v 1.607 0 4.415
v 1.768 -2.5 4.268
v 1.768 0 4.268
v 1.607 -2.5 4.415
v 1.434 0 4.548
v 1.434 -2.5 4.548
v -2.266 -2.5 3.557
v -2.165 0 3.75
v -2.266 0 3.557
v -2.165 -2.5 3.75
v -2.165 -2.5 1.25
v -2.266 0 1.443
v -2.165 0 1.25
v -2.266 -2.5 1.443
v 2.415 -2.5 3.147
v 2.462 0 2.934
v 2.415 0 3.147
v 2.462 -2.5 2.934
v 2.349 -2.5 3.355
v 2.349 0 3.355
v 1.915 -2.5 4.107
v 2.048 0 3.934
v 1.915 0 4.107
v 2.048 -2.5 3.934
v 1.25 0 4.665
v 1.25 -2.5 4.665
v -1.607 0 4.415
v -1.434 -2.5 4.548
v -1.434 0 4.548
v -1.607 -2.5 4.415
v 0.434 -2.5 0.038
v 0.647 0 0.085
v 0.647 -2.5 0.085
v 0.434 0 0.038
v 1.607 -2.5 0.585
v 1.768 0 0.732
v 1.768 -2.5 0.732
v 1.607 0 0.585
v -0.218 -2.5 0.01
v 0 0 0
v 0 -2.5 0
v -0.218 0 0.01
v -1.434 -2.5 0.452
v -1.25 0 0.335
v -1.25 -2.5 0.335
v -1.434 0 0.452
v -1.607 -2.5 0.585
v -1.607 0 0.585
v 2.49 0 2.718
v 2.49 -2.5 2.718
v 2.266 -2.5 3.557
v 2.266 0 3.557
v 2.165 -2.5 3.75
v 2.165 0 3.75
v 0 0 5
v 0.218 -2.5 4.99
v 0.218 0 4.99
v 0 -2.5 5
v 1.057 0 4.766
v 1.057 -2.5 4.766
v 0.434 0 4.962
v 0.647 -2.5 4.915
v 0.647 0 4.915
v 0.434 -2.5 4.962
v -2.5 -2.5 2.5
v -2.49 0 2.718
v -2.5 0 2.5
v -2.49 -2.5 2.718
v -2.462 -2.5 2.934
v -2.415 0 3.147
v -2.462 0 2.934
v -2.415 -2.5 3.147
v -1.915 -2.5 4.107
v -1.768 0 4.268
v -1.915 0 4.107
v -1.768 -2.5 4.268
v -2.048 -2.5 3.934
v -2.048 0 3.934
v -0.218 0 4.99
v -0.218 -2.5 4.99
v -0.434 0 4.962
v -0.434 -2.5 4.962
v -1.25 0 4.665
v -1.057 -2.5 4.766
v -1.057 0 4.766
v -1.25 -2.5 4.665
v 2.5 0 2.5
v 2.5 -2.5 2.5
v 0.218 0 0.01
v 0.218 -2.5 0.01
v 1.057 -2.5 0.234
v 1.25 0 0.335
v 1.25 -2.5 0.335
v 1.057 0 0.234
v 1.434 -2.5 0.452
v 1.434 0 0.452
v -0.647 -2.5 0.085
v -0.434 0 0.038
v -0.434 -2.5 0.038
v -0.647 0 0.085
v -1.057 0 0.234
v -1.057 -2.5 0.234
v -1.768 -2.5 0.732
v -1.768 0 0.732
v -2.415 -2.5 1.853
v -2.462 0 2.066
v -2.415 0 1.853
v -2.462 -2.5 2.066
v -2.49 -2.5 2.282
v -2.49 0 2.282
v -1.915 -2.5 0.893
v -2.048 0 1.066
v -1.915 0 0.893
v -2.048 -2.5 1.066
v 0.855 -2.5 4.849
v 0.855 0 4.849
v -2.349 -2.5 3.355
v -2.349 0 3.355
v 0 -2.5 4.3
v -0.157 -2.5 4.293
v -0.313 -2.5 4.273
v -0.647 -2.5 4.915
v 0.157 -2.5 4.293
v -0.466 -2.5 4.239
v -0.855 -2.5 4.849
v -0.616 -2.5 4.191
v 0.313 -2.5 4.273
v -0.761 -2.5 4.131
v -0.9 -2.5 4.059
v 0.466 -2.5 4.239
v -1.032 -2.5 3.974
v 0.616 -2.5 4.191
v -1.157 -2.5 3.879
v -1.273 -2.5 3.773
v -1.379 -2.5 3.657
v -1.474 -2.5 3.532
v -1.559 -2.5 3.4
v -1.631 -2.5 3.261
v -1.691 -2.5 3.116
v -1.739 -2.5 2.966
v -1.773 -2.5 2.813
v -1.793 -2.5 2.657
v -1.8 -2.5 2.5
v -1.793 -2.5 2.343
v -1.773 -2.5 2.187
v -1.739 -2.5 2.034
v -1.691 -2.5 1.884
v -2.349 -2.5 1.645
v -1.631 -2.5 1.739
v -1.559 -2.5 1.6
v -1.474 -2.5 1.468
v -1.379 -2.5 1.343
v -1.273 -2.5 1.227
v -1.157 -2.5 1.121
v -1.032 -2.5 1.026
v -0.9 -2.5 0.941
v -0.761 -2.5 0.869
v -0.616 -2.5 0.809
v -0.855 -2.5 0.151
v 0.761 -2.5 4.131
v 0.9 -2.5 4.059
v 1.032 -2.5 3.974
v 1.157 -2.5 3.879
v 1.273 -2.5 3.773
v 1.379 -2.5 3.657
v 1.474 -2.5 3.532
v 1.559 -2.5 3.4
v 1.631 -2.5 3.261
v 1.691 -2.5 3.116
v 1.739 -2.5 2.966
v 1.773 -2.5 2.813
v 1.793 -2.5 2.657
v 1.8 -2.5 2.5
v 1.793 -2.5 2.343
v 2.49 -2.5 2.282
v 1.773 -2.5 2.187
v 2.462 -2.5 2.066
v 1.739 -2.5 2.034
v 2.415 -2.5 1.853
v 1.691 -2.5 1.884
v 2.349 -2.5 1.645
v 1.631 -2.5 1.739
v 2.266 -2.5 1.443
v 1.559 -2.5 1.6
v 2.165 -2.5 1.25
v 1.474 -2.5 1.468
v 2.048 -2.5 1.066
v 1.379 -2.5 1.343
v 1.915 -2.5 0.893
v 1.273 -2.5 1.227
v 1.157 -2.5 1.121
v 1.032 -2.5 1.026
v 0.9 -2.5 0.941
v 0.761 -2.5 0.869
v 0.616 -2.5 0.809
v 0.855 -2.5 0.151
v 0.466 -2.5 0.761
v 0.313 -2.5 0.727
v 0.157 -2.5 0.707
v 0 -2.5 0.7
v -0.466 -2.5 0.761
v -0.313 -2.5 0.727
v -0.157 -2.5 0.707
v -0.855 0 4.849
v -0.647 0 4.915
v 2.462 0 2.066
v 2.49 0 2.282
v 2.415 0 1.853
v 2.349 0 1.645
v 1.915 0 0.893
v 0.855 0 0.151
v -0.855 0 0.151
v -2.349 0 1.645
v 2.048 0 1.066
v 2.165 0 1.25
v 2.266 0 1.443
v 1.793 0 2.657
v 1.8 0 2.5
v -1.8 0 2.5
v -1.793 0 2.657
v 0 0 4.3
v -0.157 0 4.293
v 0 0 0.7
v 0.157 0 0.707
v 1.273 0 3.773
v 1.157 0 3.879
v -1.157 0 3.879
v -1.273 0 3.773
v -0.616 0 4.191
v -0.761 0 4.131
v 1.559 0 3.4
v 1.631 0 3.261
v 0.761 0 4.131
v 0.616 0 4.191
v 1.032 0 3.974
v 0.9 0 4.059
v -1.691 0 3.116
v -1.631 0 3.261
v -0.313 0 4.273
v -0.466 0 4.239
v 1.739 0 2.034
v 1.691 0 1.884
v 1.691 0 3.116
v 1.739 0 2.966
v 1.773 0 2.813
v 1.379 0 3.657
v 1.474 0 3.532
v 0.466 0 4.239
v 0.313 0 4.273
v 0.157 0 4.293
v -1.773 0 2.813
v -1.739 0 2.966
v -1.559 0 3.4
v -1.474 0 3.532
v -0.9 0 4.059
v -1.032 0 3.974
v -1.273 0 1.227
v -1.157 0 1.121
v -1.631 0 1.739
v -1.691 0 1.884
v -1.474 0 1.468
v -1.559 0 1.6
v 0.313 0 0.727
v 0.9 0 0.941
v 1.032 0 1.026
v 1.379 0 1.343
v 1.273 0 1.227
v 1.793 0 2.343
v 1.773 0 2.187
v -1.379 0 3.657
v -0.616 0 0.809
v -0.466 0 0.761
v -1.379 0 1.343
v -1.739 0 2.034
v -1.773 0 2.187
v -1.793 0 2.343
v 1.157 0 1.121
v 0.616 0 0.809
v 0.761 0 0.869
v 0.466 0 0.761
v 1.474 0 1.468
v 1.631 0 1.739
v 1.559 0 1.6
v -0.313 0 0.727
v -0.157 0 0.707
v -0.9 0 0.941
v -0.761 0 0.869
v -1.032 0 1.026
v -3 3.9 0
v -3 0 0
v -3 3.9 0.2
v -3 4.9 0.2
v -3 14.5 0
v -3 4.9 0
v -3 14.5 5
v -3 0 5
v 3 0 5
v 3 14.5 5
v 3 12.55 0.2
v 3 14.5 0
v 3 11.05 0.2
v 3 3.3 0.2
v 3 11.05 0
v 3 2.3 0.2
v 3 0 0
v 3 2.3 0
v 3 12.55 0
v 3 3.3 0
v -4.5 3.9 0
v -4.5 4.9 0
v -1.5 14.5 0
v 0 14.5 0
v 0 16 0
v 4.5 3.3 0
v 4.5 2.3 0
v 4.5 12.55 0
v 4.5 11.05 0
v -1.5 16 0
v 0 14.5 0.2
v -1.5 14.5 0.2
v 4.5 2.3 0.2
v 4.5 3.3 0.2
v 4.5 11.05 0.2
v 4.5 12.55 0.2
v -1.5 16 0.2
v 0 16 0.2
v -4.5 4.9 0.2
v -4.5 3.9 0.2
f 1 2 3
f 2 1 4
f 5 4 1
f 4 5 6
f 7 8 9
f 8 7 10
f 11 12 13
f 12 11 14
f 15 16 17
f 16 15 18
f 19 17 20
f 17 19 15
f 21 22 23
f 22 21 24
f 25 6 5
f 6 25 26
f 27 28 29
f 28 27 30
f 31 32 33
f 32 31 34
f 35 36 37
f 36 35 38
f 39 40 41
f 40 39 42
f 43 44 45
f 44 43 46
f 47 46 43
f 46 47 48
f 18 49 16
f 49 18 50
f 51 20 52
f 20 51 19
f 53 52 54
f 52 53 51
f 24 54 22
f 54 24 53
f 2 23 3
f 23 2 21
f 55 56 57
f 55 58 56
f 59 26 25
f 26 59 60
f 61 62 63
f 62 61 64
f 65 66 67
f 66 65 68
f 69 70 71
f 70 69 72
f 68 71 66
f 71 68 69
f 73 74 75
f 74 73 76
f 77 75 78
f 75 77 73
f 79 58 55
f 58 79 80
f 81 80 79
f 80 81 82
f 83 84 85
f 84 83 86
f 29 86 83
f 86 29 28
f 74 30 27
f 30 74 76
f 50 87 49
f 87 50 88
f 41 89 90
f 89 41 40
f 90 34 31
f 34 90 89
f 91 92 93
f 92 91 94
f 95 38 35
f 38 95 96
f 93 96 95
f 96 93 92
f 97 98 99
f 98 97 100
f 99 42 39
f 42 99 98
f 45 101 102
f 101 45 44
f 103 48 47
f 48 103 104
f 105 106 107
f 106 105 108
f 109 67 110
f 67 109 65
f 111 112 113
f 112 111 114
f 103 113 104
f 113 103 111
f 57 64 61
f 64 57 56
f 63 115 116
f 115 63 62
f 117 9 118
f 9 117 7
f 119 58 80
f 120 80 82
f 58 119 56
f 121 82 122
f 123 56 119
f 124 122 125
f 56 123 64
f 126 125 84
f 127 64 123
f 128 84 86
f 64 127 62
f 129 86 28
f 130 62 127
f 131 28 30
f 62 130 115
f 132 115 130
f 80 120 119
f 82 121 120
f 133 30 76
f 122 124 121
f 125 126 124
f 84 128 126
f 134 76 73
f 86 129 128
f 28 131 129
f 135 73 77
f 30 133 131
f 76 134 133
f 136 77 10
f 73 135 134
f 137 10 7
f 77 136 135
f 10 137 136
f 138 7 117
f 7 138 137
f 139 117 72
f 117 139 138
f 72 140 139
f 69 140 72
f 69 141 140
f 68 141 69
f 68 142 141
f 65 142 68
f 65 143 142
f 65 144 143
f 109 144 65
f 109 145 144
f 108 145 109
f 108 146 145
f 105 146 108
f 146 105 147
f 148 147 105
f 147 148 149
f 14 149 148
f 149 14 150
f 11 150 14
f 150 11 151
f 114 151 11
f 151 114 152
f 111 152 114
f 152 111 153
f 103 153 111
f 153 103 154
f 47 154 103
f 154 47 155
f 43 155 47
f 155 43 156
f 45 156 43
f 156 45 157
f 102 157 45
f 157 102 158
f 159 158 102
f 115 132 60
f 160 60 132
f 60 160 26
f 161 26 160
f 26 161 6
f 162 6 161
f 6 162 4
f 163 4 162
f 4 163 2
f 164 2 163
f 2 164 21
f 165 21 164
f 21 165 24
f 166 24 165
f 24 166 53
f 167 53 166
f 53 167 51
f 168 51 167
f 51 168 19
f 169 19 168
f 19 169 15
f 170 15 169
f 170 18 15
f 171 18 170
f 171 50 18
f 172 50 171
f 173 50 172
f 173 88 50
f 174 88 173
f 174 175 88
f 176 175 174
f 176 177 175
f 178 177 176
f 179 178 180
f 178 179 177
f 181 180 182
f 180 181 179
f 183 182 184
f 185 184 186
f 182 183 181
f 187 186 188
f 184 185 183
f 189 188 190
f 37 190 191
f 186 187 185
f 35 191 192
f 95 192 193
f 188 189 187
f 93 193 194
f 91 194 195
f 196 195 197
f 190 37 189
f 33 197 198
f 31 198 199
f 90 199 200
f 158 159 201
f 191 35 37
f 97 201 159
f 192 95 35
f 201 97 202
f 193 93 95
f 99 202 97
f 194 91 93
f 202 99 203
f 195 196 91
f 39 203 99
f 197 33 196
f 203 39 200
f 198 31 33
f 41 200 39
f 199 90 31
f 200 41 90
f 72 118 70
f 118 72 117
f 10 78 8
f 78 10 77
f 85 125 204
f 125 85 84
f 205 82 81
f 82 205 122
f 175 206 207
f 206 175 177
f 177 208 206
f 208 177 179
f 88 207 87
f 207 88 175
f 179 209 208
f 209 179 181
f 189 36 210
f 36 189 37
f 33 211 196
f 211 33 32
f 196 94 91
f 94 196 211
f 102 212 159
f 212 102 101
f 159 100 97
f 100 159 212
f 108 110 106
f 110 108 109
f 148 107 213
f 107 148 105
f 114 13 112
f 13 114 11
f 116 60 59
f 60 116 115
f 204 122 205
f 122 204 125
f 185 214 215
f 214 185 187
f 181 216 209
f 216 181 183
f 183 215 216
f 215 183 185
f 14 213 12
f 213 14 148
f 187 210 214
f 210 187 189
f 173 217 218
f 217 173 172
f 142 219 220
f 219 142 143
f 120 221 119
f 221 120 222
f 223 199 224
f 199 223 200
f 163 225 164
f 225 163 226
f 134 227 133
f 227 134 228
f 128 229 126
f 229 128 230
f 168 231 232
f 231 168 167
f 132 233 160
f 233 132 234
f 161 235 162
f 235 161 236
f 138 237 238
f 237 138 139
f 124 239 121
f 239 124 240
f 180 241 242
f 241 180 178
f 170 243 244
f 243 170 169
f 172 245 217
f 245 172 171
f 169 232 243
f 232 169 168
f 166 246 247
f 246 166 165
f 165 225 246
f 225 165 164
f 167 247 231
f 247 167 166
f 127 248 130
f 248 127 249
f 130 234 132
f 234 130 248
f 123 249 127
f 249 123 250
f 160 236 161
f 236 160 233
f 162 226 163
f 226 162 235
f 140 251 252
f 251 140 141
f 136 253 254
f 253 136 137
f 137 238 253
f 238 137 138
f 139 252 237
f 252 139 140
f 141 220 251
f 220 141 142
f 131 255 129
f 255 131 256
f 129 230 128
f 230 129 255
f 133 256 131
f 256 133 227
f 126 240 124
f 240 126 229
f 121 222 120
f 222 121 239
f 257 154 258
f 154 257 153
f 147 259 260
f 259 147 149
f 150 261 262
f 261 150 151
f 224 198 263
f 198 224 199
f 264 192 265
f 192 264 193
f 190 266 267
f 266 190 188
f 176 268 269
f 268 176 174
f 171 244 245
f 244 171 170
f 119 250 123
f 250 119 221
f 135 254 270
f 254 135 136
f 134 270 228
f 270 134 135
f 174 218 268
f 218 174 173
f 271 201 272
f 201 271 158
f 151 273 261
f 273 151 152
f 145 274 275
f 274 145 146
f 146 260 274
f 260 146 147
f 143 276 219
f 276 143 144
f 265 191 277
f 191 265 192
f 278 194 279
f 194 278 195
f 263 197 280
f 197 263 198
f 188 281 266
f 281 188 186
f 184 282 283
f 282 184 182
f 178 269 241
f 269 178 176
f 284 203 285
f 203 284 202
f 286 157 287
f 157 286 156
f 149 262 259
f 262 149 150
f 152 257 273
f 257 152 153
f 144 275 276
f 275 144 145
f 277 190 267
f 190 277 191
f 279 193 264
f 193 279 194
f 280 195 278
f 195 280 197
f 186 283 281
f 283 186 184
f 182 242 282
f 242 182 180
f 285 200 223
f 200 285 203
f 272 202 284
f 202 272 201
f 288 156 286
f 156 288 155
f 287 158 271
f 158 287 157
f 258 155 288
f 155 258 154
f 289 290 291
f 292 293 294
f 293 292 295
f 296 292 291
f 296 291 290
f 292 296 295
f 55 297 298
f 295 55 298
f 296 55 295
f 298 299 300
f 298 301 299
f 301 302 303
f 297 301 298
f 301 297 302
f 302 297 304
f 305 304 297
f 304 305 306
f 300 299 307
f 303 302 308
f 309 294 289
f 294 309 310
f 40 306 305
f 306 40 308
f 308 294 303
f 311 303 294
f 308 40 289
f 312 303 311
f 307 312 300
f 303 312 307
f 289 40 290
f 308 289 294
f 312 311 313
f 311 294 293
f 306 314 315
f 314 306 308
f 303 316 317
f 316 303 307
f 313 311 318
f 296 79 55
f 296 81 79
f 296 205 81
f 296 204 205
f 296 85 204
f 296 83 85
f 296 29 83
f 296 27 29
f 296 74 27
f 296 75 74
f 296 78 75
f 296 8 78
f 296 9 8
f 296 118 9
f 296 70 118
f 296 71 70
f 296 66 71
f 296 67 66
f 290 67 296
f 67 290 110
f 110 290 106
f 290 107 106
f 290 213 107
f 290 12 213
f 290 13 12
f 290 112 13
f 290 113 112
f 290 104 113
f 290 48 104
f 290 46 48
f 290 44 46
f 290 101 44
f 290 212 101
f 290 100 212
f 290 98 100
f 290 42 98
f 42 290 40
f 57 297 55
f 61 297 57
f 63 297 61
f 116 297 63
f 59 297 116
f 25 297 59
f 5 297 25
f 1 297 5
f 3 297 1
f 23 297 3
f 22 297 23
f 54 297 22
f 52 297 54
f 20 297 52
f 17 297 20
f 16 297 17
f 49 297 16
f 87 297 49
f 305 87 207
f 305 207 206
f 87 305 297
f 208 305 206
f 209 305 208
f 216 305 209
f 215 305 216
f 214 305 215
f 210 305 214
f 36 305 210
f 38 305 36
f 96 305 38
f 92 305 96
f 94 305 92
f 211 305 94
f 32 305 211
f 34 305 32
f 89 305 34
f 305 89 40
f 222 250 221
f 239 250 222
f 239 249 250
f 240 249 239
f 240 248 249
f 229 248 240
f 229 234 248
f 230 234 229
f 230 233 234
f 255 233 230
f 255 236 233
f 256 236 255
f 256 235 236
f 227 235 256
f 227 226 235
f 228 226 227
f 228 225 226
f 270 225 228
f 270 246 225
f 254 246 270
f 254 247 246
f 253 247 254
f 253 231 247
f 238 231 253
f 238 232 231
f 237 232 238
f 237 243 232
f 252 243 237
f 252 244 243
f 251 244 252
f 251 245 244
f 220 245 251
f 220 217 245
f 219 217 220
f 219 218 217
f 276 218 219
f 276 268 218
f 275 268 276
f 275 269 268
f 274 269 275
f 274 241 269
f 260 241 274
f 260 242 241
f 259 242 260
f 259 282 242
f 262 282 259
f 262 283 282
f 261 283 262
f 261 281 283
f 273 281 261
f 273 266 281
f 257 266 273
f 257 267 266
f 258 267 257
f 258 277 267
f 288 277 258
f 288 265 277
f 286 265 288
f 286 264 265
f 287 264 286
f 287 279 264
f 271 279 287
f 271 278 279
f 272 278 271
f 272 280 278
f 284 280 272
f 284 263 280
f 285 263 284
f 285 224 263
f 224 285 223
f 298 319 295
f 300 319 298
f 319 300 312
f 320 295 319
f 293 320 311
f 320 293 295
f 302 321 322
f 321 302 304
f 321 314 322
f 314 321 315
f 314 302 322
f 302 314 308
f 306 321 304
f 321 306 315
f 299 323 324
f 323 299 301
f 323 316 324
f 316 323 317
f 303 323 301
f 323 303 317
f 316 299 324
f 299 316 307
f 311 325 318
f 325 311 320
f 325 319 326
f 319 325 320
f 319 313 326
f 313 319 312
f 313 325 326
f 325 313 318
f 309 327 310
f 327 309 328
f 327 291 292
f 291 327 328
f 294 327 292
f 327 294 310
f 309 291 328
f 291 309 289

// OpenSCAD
scale = 1;
mm = 1 * scale;
BODY_LENGTH = 14.5 * mm;
BODY_WIDTH = 6 * mm;
BODY_HEIGHT = 5 * mm;
BODY = [BODY_WIDTH,
        BODY_LENGTH,
        BODY_HEIGHT];
PLUG_DIAMETER = 5 * mm;
PLUG_LENGTH = 2.5 * mm;
PLUG_CUTOUT_DIAMETER = 3.6 * mm;

$fn = 72;

translate([-BODY_WIDTH/2,0,0]){
  cube(BODY);
  translate([BODY_WIDTH, 2.8 * mm - 0.5 * mm, 0]){
        cube([1.5*mm, 1*mm, 0.2*mm]);
  }
  translate([BODY_WIDTH, 11.8 * mm - 0.75 * mm, 0]){
        cube([1.5*mm, 1.5*mm, 0.2*mm]);
  }
  translate([BODY_WIDTH/2 - 1.5 * mm, 14.5 * mm, 0]){
        cube([1.5*mm, 1.5*mm, 0.2*mm]);
  }
  translate([-1.5 * mm, 4.4 * mm - 0.5 * mm, 0]){
        cube([1.5*mm, 1*mm, 0.2*mm]);
  }
}

rotate([90,0,0]){
    translate([0,PLUG_DIAMETER/2,0]){
  difference(){
        cylinder(d=PLUG_DIAMETER, h = PLUG_LENGTH);
        cylinder(d=PLUG_CUTOUT_DIAMETER, h = PLUG_LENGTH);
  }
  }
}

 //cube([1.5*mm, 1*mm, 0.2*mm]);
